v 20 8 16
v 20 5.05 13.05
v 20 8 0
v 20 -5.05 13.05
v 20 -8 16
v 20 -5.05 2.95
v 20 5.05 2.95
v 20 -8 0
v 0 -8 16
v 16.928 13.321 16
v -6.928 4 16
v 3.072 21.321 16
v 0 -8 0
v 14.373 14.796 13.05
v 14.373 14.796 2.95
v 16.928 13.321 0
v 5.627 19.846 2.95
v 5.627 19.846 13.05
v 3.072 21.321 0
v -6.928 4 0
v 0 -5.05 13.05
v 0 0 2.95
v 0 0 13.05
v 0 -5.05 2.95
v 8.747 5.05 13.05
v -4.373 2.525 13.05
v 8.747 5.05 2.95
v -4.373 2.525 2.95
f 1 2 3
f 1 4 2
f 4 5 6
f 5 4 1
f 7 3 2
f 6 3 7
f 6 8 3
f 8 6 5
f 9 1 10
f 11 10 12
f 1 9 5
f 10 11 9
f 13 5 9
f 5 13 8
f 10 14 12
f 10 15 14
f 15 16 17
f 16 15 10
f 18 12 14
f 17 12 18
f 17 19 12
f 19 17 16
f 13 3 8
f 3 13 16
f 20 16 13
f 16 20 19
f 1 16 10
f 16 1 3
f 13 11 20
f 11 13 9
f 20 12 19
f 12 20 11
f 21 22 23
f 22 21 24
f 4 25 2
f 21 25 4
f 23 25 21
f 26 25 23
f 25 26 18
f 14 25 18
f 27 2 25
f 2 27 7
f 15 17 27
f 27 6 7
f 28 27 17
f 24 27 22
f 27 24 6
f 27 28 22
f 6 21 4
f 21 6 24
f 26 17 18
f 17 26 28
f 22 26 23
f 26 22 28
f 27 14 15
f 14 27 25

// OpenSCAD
//  union(){
//    translate([-42/2,-42/2-15,-0-2])cube([42,15,15]);
//    translate([-42/2,+42/2,-0-2])cube([42,15,15]);
//    translate([-42/2,-42/2,-0-2])cube([42,42,4]);
//  }
//  
//          translate([-50/2,-42/2-10-2,0.5])cube([50,10.1,10.1]);
//        translate([-50/2,+42/2+2.5 ,0.5])cube([50,10.1,10.1]);
//  
  
  
 difference(){
hull(){
translate([0,0,0])translate([0,-16/2,0])cube([20,16,16]);      
rotate([0,0,60])translate([0,-16/2,0])cube([20,16,16]); 

}

translate([0,0,(16-10.1)/2])translate([0,-10.1/2,0])cube([50,10.1,10.1]);  
translate([0,0,(16-10.1)/2])rotate([0,0,60])translate([0,-10.1/2,0])cube([50,10.1,10.1]); 




}
